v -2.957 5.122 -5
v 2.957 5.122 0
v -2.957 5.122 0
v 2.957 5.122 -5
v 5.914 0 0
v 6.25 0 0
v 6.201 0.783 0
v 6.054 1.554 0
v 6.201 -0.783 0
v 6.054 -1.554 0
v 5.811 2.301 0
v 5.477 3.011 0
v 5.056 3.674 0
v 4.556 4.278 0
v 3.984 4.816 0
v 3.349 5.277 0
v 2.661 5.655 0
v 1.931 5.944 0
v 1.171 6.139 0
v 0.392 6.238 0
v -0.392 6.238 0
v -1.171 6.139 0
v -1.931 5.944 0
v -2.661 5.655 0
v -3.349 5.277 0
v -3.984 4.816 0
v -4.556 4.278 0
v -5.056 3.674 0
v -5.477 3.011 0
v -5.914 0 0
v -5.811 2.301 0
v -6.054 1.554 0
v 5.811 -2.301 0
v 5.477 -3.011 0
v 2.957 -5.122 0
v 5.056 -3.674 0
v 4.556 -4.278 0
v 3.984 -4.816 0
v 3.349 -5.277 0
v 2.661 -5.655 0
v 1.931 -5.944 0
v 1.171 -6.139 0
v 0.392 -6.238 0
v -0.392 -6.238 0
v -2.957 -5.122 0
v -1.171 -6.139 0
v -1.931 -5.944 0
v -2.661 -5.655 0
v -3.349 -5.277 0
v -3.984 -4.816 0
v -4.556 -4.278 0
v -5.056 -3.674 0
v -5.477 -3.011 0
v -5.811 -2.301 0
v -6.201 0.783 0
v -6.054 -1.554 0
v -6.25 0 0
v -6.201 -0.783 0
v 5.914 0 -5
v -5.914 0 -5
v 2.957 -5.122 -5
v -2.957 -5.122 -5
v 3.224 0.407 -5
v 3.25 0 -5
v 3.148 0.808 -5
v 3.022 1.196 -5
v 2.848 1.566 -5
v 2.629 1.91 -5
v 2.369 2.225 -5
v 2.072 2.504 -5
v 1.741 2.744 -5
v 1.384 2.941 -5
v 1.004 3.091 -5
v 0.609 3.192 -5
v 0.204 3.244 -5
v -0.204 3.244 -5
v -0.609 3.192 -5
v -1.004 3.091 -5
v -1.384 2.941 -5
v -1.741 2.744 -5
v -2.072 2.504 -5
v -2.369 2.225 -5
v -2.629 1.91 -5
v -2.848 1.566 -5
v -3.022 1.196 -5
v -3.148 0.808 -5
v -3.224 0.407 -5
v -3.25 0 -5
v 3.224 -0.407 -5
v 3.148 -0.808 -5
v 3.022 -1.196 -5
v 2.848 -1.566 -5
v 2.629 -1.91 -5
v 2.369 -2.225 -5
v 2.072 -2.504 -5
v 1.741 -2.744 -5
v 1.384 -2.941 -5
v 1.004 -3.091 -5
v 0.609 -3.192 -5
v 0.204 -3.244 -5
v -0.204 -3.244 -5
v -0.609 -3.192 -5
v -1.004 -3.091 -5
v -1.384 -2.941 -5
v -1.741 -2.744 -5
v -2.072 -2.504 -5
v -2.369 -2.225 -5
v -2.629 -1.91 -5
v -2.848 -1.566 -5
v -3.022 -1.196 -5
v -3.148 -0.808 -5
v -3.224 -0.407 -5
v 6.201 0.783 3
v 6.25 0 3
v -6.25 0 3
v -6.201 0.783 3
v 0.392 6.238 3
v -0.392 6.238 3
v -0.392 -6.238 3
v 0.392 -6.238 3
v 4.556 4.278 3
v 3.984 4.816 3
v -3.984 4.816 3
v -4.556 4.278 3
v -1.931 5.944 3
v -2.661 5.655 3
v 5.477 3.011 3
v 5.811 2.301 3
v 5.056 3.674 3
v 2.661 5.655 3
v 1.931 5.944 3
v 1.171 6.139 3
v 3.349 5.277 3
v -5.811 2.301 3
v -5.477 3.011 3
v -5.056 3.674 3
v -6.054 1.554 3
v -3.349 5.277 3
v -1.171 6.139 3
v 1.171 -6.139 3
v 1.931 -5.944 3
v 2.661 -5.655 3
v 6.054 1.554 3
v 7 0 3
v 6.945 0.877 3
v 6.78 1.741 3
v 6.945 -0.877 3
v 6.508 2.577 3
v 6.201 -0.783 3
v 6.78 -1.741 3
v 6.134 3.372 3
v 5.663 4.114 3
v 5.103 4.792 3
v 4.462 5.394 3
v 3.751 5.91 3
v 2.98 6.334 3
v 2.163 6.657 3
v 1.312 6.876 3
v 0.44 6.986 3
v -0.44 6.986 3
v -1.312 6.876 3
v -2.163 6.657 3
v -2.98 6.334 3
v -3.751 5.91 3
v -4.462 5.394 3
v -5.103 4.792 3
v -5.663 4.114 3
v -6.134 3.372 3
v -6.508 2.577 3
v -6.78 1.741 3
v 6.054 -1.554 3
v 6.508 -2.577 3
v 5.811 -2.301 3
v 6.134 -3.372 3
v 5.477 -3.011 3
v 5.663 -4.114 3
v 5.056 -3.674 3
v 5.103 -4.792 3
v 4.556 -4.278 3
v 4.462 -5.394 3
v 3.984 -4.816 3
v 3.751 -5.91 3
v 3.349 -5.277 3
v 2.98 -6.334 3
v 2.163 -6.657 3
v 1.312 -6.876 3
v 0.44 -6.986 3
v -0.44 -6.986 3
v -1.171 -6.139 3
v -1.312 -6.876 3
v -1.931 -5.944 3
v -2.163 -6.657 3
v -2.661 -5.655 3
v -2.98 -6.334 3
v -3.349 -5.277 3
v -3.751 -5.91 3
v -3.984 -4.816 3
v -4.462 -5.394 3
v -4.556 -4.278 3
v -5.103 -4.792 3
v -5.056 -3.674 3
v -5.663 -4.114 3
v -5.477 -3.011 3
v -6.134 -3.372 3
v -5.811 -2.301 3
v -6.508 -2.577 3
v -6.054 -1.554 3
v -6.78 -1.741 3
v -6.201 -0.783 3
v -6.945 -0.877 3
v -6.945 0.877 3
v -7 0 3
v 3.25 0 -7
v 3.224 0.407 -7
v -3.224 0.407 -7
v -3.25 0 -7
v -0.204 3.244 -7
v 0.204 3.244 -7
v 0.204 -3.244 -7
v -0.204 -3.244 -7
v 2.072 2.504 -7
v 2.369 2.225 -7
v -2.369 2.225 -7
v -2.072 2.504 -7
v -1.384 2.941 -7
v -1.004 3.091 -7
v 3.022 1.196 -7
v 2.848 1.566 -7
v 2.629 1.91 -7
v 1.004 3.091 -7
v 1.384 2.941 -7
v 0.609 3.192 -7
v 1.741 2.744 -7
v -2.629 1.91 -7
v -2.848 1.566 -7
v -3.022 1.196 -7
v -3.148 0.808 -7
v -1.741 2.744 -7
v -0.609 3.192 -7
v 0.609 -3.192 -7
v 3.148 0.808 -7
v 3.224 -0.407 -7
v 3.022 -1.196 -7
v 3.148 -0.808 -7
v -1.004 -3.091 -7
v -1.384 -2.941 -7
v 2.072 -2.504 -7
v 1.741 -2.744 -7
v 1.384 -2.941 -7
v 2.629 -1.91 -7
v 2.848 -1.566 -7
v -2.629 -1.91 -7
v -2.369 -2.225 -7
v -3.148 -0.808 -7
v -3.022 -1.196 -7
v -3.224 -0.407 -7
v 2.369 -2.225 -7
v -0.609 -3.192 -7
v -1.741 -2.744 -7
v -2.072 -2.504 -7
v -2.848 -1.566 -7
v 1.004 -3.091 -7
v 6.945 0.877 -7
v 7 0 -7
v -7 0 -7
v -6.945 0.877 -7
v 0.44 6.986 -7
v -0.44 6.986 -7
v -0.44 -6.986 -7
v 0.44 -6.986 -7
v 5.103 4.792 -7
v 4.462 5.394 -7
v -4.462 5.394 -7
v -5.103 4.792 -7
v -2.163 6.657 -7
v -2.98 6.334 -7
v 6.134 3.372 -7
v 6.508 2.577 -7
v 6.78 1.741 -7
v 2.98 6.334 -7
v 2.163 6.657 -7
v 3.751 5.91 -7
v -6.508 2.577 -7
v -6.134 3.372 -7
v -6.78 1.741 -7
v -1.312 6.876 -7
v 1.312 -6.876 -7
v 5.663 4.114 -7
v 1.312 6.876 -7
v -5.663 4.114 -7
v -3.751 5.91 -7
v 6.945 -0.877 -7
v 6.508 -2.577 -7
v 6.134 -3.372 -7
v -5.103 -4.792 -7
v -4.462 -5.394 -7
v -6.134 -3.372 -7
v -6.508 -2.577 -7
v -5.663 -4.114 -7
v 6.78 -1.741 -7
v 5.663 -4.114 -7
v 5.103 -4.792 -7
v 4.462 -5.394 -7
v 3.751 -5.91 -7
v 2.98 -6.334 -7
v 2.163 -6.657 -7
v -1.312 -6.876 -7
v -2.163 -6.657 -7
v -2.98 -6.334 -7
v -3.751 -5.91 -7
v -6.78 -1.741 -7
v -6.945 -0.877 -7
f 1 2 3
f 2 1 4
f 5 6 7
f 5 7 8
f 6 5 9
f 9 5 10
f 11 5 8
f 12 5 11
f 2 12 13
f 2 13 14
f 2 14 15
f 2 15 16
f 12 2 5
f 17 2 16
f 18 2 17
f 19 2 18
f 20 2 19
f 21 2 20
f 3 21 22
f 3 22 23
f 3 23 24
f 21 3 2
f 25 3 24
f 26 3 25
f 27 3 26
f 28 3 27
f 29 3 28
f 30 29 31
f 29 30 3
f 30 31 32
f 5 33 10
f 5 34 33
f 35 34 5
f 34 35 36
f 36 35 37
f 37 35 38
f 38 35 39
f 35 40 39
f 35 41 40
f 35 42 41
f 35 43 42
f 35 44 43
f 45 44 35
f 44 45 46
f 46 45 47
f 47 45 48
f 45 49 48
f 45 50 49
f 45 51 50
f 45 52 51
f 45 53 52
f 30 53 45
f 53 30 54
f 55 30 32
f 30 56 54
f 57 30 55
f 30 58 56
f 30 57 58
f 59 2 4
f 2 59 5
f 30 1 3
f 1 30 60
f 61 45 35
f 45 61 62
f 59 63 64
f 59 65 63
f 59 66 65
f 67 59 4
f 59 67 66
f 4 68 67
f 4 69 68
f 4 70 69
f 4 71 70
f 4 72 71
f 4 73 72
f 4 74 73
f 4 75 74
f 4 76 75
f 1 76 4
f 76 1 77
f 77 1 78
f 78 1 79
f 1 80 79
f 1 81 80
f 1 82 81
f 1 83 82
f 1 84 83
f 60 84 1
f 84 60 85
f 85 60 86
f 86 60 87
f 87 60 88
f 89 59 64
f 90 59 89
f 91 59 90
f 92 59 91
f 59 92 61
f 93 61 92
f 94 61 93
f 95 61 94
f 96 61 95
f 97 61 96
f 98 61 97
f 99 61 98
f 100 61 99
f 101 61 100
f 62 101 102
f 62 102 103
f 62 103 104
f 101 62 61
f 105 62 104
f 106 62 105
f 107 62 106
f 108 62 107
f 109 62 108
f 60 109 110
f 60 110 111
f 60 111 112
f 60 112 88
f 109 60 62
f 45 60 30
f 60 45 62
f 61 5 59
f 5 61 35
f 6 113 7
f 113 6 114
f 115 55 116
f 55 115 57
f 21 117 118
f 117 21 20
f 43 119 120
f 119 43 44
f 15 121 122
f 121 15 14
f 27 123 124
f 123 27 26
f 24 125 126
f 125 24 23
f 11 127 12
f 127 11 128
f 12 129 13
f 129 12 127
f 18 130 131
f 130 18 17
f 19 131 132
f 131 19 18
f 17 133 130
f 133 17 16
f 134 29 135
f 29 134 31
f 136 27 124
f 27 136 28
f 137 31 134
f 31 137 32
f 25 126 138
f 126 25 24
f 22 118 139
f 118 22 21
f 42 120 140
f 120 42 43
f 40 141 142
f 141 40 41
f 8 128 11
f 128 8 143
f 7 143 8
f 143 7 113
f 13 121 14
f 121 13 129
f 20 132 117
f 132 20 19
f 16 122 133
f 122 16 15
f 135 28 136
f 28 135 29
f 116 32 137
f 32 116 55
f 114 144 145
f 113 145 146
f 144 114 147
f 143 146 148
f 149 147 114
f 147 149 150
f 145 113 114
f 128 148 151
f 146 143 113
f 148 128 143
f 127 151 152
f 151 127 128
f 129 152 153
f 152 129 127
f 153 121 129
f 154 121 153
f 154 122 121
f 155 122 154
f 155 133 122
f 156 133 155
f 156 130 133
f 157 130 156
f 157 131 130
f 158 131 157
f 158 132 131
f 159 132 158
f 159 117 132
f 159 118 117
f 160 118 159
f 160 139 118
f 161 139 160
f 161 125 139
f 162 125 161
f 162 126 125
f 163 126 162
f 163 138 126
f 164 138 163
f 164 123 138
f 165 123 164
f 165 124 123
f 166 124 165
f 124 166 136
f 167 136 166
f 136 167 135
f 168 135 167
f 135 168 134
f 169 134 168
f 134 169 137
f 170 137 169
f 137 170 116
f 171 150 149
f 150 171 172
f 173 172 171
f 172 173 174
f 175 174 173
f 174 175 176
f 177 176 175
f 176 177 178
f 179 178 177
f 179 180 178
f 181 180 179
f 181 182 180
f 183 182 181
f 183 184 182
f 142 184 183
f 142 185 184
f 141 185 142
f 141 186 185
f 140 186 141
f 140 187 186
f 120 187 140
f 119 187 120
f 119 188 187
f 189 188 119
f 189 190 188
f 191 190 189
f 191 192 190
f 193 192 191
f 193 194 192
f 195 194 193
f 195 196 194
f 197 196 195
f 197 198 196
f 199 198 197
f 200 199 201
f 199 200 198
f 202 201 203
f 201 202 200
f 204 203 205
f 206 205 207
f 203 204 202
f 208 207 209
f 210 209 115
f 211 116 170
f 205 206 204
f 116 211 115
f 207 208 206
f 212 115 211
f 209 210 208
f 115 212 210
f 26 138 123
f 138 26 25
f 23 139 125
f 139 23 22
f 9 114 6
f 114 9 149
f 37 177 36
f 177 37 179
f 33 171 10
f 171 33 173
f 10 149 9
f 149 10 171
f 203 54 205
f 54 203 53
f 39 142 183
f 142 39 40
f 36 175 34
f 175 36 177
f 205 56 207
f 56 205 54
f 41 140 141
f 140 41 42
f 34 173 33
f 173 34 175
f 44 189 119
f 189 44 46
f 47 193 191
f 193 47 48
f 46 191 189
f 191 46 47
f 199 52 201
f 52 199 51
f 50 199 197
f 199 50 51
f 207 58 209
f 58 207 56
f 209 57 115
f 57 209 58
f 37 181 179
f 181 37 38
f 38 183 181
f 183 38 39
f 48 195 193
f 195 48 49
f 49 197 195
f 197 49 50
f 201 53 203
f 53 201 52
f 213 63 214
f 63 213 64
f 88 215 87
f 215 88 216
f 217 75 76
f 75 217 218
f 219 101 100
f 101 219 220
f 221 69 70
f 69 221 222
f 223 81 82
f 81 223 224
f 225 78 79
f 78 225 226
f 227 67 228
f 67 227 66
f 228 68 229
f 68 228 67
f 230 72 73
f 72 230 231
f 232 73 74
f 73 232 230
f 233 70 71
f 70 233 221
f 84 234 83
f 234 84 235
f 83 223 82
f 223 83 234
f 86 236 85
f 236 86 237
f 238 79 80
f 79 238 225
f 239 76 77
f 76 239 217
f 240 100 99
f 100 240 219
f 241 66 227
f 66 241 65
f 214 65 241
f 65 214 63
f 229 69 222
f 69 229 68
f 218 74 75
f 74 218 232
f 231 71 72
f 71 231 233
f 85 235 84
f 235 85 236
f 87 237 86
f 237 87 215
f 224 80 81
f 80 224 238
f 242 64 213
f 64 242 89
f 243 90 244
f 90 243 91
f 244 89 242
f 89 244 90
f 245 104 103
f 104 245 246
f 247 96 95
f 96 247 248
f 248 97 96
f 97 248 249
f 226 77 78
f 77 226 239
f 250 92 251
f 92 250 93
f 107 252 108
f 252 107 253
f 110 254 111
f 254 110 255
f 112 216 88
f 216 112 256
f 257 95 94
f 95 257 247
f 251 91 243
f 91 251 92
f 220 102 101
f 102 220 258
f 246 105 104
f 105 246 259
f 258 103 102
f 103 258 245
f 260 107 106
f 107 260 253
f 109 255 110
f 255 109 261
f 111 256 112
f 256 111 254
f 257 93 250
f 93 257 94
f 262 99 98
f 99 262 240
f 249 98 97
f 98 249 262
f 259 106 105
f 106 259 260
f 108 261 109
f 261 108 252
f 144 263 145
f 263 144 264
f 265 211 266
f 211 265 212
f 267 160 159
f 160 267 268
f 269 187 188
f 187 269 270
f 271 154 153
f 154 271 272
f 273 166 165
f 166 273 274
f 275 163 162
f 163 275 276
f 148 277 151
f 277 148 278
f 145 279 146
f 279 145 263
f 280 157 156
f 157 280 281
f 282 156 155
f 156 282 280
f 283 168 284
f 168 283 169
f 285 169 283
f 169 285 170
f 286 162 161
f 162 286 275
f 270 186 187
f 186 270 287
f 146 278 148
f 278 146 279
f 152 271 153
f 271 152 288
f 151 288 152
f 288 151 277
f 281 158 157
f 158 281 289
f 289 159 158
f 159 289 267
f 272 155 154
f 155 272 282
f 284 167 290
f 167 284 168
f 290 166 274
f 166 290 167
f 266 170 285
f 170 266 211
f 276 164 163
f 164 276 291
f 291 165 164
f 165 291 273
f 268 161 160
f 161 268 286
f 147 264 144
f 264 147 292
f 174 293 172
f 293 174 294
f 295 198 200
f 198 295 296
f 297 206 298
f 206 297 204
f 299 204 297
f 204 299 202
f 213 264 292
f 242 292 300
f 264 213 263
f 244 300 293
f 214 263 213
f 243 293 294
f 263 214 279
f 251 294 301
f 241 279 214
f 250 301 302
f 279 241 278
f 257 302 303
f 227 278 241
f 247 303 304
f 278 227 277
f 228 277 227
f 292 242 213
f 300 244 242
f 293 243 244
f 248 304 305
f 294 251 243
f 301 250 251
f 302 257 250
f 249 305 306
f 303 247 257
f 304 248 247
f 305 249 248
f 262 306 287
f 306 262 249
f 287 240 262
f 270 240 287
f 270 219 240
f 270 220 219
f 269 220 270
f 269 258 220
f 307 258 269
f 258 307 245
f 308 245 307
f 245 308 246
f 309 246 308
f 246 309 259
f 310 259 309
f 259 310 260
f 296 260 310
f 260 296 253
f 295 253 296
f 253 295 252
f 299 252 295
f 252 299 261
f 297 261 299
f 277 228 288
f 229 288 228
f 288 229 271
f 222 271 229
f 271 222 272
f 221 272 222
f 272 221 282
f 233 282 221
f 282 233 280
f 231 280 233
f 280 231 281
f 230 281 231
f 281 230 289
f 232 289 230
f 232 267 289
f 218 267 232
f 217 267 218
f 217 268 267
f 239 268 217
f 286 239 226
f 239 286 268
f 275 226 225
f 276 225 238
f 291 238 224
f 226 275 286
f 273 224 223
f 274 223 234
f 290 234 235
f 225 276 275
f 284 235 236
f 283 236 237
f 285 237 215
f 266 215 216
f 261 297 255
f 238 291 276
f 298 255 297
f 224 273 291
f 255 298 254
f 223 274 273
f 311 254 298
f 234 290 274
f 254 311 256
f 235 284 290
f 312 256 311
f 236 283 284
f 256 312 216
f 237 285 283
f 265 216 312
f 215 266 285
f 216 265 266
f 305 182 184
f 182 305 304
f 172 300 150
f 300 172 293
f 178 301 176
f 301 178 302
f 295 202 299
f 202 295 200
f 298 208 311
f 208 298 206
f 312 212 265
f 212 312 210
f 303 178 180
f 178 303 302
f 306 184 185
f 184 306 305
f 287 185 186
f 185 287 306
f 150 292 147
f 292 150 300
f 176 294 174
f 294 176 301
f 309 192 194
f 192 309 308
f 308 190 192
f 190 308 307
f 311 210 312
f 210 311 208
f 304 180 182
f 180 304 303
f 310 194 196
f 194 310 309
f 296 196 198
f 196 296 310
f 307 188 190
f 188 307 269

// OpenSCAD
$fn = 50;


difference() {
	union() {
		translate(v = [0, 0, -7.0000000000]) {
			cylinder(h = 10.0000000000, r = 7.0000000000);
		}
	}
	union() {
		translate(v = [0, 0, 0]) {
			rotate(a = [0, 0, 0]) {
				difference() {
					union() {
						translate(v = [0, 0, -5]) {
							linear_extrude(height = 5) {
								polygon(points = [[5.9142500000, 0.0000000000], [2.9571250000, 5.1218907443], [-2.9571250000, 5.1218907443], [-5.9142500000, 0.0000000000], [-2.9571250000, -5.1218907443], [2.9571250000, -5.1218907443]]);
							}
						}
					}
					union();
				}
			}
		}
		#cylinder(h = 3, r = 6.2500000000);
		#translate(v = [0, 0, -100.0000000000]) {
			cylinder(h = 200, r = 3.2500000000);
		}
	}
}
